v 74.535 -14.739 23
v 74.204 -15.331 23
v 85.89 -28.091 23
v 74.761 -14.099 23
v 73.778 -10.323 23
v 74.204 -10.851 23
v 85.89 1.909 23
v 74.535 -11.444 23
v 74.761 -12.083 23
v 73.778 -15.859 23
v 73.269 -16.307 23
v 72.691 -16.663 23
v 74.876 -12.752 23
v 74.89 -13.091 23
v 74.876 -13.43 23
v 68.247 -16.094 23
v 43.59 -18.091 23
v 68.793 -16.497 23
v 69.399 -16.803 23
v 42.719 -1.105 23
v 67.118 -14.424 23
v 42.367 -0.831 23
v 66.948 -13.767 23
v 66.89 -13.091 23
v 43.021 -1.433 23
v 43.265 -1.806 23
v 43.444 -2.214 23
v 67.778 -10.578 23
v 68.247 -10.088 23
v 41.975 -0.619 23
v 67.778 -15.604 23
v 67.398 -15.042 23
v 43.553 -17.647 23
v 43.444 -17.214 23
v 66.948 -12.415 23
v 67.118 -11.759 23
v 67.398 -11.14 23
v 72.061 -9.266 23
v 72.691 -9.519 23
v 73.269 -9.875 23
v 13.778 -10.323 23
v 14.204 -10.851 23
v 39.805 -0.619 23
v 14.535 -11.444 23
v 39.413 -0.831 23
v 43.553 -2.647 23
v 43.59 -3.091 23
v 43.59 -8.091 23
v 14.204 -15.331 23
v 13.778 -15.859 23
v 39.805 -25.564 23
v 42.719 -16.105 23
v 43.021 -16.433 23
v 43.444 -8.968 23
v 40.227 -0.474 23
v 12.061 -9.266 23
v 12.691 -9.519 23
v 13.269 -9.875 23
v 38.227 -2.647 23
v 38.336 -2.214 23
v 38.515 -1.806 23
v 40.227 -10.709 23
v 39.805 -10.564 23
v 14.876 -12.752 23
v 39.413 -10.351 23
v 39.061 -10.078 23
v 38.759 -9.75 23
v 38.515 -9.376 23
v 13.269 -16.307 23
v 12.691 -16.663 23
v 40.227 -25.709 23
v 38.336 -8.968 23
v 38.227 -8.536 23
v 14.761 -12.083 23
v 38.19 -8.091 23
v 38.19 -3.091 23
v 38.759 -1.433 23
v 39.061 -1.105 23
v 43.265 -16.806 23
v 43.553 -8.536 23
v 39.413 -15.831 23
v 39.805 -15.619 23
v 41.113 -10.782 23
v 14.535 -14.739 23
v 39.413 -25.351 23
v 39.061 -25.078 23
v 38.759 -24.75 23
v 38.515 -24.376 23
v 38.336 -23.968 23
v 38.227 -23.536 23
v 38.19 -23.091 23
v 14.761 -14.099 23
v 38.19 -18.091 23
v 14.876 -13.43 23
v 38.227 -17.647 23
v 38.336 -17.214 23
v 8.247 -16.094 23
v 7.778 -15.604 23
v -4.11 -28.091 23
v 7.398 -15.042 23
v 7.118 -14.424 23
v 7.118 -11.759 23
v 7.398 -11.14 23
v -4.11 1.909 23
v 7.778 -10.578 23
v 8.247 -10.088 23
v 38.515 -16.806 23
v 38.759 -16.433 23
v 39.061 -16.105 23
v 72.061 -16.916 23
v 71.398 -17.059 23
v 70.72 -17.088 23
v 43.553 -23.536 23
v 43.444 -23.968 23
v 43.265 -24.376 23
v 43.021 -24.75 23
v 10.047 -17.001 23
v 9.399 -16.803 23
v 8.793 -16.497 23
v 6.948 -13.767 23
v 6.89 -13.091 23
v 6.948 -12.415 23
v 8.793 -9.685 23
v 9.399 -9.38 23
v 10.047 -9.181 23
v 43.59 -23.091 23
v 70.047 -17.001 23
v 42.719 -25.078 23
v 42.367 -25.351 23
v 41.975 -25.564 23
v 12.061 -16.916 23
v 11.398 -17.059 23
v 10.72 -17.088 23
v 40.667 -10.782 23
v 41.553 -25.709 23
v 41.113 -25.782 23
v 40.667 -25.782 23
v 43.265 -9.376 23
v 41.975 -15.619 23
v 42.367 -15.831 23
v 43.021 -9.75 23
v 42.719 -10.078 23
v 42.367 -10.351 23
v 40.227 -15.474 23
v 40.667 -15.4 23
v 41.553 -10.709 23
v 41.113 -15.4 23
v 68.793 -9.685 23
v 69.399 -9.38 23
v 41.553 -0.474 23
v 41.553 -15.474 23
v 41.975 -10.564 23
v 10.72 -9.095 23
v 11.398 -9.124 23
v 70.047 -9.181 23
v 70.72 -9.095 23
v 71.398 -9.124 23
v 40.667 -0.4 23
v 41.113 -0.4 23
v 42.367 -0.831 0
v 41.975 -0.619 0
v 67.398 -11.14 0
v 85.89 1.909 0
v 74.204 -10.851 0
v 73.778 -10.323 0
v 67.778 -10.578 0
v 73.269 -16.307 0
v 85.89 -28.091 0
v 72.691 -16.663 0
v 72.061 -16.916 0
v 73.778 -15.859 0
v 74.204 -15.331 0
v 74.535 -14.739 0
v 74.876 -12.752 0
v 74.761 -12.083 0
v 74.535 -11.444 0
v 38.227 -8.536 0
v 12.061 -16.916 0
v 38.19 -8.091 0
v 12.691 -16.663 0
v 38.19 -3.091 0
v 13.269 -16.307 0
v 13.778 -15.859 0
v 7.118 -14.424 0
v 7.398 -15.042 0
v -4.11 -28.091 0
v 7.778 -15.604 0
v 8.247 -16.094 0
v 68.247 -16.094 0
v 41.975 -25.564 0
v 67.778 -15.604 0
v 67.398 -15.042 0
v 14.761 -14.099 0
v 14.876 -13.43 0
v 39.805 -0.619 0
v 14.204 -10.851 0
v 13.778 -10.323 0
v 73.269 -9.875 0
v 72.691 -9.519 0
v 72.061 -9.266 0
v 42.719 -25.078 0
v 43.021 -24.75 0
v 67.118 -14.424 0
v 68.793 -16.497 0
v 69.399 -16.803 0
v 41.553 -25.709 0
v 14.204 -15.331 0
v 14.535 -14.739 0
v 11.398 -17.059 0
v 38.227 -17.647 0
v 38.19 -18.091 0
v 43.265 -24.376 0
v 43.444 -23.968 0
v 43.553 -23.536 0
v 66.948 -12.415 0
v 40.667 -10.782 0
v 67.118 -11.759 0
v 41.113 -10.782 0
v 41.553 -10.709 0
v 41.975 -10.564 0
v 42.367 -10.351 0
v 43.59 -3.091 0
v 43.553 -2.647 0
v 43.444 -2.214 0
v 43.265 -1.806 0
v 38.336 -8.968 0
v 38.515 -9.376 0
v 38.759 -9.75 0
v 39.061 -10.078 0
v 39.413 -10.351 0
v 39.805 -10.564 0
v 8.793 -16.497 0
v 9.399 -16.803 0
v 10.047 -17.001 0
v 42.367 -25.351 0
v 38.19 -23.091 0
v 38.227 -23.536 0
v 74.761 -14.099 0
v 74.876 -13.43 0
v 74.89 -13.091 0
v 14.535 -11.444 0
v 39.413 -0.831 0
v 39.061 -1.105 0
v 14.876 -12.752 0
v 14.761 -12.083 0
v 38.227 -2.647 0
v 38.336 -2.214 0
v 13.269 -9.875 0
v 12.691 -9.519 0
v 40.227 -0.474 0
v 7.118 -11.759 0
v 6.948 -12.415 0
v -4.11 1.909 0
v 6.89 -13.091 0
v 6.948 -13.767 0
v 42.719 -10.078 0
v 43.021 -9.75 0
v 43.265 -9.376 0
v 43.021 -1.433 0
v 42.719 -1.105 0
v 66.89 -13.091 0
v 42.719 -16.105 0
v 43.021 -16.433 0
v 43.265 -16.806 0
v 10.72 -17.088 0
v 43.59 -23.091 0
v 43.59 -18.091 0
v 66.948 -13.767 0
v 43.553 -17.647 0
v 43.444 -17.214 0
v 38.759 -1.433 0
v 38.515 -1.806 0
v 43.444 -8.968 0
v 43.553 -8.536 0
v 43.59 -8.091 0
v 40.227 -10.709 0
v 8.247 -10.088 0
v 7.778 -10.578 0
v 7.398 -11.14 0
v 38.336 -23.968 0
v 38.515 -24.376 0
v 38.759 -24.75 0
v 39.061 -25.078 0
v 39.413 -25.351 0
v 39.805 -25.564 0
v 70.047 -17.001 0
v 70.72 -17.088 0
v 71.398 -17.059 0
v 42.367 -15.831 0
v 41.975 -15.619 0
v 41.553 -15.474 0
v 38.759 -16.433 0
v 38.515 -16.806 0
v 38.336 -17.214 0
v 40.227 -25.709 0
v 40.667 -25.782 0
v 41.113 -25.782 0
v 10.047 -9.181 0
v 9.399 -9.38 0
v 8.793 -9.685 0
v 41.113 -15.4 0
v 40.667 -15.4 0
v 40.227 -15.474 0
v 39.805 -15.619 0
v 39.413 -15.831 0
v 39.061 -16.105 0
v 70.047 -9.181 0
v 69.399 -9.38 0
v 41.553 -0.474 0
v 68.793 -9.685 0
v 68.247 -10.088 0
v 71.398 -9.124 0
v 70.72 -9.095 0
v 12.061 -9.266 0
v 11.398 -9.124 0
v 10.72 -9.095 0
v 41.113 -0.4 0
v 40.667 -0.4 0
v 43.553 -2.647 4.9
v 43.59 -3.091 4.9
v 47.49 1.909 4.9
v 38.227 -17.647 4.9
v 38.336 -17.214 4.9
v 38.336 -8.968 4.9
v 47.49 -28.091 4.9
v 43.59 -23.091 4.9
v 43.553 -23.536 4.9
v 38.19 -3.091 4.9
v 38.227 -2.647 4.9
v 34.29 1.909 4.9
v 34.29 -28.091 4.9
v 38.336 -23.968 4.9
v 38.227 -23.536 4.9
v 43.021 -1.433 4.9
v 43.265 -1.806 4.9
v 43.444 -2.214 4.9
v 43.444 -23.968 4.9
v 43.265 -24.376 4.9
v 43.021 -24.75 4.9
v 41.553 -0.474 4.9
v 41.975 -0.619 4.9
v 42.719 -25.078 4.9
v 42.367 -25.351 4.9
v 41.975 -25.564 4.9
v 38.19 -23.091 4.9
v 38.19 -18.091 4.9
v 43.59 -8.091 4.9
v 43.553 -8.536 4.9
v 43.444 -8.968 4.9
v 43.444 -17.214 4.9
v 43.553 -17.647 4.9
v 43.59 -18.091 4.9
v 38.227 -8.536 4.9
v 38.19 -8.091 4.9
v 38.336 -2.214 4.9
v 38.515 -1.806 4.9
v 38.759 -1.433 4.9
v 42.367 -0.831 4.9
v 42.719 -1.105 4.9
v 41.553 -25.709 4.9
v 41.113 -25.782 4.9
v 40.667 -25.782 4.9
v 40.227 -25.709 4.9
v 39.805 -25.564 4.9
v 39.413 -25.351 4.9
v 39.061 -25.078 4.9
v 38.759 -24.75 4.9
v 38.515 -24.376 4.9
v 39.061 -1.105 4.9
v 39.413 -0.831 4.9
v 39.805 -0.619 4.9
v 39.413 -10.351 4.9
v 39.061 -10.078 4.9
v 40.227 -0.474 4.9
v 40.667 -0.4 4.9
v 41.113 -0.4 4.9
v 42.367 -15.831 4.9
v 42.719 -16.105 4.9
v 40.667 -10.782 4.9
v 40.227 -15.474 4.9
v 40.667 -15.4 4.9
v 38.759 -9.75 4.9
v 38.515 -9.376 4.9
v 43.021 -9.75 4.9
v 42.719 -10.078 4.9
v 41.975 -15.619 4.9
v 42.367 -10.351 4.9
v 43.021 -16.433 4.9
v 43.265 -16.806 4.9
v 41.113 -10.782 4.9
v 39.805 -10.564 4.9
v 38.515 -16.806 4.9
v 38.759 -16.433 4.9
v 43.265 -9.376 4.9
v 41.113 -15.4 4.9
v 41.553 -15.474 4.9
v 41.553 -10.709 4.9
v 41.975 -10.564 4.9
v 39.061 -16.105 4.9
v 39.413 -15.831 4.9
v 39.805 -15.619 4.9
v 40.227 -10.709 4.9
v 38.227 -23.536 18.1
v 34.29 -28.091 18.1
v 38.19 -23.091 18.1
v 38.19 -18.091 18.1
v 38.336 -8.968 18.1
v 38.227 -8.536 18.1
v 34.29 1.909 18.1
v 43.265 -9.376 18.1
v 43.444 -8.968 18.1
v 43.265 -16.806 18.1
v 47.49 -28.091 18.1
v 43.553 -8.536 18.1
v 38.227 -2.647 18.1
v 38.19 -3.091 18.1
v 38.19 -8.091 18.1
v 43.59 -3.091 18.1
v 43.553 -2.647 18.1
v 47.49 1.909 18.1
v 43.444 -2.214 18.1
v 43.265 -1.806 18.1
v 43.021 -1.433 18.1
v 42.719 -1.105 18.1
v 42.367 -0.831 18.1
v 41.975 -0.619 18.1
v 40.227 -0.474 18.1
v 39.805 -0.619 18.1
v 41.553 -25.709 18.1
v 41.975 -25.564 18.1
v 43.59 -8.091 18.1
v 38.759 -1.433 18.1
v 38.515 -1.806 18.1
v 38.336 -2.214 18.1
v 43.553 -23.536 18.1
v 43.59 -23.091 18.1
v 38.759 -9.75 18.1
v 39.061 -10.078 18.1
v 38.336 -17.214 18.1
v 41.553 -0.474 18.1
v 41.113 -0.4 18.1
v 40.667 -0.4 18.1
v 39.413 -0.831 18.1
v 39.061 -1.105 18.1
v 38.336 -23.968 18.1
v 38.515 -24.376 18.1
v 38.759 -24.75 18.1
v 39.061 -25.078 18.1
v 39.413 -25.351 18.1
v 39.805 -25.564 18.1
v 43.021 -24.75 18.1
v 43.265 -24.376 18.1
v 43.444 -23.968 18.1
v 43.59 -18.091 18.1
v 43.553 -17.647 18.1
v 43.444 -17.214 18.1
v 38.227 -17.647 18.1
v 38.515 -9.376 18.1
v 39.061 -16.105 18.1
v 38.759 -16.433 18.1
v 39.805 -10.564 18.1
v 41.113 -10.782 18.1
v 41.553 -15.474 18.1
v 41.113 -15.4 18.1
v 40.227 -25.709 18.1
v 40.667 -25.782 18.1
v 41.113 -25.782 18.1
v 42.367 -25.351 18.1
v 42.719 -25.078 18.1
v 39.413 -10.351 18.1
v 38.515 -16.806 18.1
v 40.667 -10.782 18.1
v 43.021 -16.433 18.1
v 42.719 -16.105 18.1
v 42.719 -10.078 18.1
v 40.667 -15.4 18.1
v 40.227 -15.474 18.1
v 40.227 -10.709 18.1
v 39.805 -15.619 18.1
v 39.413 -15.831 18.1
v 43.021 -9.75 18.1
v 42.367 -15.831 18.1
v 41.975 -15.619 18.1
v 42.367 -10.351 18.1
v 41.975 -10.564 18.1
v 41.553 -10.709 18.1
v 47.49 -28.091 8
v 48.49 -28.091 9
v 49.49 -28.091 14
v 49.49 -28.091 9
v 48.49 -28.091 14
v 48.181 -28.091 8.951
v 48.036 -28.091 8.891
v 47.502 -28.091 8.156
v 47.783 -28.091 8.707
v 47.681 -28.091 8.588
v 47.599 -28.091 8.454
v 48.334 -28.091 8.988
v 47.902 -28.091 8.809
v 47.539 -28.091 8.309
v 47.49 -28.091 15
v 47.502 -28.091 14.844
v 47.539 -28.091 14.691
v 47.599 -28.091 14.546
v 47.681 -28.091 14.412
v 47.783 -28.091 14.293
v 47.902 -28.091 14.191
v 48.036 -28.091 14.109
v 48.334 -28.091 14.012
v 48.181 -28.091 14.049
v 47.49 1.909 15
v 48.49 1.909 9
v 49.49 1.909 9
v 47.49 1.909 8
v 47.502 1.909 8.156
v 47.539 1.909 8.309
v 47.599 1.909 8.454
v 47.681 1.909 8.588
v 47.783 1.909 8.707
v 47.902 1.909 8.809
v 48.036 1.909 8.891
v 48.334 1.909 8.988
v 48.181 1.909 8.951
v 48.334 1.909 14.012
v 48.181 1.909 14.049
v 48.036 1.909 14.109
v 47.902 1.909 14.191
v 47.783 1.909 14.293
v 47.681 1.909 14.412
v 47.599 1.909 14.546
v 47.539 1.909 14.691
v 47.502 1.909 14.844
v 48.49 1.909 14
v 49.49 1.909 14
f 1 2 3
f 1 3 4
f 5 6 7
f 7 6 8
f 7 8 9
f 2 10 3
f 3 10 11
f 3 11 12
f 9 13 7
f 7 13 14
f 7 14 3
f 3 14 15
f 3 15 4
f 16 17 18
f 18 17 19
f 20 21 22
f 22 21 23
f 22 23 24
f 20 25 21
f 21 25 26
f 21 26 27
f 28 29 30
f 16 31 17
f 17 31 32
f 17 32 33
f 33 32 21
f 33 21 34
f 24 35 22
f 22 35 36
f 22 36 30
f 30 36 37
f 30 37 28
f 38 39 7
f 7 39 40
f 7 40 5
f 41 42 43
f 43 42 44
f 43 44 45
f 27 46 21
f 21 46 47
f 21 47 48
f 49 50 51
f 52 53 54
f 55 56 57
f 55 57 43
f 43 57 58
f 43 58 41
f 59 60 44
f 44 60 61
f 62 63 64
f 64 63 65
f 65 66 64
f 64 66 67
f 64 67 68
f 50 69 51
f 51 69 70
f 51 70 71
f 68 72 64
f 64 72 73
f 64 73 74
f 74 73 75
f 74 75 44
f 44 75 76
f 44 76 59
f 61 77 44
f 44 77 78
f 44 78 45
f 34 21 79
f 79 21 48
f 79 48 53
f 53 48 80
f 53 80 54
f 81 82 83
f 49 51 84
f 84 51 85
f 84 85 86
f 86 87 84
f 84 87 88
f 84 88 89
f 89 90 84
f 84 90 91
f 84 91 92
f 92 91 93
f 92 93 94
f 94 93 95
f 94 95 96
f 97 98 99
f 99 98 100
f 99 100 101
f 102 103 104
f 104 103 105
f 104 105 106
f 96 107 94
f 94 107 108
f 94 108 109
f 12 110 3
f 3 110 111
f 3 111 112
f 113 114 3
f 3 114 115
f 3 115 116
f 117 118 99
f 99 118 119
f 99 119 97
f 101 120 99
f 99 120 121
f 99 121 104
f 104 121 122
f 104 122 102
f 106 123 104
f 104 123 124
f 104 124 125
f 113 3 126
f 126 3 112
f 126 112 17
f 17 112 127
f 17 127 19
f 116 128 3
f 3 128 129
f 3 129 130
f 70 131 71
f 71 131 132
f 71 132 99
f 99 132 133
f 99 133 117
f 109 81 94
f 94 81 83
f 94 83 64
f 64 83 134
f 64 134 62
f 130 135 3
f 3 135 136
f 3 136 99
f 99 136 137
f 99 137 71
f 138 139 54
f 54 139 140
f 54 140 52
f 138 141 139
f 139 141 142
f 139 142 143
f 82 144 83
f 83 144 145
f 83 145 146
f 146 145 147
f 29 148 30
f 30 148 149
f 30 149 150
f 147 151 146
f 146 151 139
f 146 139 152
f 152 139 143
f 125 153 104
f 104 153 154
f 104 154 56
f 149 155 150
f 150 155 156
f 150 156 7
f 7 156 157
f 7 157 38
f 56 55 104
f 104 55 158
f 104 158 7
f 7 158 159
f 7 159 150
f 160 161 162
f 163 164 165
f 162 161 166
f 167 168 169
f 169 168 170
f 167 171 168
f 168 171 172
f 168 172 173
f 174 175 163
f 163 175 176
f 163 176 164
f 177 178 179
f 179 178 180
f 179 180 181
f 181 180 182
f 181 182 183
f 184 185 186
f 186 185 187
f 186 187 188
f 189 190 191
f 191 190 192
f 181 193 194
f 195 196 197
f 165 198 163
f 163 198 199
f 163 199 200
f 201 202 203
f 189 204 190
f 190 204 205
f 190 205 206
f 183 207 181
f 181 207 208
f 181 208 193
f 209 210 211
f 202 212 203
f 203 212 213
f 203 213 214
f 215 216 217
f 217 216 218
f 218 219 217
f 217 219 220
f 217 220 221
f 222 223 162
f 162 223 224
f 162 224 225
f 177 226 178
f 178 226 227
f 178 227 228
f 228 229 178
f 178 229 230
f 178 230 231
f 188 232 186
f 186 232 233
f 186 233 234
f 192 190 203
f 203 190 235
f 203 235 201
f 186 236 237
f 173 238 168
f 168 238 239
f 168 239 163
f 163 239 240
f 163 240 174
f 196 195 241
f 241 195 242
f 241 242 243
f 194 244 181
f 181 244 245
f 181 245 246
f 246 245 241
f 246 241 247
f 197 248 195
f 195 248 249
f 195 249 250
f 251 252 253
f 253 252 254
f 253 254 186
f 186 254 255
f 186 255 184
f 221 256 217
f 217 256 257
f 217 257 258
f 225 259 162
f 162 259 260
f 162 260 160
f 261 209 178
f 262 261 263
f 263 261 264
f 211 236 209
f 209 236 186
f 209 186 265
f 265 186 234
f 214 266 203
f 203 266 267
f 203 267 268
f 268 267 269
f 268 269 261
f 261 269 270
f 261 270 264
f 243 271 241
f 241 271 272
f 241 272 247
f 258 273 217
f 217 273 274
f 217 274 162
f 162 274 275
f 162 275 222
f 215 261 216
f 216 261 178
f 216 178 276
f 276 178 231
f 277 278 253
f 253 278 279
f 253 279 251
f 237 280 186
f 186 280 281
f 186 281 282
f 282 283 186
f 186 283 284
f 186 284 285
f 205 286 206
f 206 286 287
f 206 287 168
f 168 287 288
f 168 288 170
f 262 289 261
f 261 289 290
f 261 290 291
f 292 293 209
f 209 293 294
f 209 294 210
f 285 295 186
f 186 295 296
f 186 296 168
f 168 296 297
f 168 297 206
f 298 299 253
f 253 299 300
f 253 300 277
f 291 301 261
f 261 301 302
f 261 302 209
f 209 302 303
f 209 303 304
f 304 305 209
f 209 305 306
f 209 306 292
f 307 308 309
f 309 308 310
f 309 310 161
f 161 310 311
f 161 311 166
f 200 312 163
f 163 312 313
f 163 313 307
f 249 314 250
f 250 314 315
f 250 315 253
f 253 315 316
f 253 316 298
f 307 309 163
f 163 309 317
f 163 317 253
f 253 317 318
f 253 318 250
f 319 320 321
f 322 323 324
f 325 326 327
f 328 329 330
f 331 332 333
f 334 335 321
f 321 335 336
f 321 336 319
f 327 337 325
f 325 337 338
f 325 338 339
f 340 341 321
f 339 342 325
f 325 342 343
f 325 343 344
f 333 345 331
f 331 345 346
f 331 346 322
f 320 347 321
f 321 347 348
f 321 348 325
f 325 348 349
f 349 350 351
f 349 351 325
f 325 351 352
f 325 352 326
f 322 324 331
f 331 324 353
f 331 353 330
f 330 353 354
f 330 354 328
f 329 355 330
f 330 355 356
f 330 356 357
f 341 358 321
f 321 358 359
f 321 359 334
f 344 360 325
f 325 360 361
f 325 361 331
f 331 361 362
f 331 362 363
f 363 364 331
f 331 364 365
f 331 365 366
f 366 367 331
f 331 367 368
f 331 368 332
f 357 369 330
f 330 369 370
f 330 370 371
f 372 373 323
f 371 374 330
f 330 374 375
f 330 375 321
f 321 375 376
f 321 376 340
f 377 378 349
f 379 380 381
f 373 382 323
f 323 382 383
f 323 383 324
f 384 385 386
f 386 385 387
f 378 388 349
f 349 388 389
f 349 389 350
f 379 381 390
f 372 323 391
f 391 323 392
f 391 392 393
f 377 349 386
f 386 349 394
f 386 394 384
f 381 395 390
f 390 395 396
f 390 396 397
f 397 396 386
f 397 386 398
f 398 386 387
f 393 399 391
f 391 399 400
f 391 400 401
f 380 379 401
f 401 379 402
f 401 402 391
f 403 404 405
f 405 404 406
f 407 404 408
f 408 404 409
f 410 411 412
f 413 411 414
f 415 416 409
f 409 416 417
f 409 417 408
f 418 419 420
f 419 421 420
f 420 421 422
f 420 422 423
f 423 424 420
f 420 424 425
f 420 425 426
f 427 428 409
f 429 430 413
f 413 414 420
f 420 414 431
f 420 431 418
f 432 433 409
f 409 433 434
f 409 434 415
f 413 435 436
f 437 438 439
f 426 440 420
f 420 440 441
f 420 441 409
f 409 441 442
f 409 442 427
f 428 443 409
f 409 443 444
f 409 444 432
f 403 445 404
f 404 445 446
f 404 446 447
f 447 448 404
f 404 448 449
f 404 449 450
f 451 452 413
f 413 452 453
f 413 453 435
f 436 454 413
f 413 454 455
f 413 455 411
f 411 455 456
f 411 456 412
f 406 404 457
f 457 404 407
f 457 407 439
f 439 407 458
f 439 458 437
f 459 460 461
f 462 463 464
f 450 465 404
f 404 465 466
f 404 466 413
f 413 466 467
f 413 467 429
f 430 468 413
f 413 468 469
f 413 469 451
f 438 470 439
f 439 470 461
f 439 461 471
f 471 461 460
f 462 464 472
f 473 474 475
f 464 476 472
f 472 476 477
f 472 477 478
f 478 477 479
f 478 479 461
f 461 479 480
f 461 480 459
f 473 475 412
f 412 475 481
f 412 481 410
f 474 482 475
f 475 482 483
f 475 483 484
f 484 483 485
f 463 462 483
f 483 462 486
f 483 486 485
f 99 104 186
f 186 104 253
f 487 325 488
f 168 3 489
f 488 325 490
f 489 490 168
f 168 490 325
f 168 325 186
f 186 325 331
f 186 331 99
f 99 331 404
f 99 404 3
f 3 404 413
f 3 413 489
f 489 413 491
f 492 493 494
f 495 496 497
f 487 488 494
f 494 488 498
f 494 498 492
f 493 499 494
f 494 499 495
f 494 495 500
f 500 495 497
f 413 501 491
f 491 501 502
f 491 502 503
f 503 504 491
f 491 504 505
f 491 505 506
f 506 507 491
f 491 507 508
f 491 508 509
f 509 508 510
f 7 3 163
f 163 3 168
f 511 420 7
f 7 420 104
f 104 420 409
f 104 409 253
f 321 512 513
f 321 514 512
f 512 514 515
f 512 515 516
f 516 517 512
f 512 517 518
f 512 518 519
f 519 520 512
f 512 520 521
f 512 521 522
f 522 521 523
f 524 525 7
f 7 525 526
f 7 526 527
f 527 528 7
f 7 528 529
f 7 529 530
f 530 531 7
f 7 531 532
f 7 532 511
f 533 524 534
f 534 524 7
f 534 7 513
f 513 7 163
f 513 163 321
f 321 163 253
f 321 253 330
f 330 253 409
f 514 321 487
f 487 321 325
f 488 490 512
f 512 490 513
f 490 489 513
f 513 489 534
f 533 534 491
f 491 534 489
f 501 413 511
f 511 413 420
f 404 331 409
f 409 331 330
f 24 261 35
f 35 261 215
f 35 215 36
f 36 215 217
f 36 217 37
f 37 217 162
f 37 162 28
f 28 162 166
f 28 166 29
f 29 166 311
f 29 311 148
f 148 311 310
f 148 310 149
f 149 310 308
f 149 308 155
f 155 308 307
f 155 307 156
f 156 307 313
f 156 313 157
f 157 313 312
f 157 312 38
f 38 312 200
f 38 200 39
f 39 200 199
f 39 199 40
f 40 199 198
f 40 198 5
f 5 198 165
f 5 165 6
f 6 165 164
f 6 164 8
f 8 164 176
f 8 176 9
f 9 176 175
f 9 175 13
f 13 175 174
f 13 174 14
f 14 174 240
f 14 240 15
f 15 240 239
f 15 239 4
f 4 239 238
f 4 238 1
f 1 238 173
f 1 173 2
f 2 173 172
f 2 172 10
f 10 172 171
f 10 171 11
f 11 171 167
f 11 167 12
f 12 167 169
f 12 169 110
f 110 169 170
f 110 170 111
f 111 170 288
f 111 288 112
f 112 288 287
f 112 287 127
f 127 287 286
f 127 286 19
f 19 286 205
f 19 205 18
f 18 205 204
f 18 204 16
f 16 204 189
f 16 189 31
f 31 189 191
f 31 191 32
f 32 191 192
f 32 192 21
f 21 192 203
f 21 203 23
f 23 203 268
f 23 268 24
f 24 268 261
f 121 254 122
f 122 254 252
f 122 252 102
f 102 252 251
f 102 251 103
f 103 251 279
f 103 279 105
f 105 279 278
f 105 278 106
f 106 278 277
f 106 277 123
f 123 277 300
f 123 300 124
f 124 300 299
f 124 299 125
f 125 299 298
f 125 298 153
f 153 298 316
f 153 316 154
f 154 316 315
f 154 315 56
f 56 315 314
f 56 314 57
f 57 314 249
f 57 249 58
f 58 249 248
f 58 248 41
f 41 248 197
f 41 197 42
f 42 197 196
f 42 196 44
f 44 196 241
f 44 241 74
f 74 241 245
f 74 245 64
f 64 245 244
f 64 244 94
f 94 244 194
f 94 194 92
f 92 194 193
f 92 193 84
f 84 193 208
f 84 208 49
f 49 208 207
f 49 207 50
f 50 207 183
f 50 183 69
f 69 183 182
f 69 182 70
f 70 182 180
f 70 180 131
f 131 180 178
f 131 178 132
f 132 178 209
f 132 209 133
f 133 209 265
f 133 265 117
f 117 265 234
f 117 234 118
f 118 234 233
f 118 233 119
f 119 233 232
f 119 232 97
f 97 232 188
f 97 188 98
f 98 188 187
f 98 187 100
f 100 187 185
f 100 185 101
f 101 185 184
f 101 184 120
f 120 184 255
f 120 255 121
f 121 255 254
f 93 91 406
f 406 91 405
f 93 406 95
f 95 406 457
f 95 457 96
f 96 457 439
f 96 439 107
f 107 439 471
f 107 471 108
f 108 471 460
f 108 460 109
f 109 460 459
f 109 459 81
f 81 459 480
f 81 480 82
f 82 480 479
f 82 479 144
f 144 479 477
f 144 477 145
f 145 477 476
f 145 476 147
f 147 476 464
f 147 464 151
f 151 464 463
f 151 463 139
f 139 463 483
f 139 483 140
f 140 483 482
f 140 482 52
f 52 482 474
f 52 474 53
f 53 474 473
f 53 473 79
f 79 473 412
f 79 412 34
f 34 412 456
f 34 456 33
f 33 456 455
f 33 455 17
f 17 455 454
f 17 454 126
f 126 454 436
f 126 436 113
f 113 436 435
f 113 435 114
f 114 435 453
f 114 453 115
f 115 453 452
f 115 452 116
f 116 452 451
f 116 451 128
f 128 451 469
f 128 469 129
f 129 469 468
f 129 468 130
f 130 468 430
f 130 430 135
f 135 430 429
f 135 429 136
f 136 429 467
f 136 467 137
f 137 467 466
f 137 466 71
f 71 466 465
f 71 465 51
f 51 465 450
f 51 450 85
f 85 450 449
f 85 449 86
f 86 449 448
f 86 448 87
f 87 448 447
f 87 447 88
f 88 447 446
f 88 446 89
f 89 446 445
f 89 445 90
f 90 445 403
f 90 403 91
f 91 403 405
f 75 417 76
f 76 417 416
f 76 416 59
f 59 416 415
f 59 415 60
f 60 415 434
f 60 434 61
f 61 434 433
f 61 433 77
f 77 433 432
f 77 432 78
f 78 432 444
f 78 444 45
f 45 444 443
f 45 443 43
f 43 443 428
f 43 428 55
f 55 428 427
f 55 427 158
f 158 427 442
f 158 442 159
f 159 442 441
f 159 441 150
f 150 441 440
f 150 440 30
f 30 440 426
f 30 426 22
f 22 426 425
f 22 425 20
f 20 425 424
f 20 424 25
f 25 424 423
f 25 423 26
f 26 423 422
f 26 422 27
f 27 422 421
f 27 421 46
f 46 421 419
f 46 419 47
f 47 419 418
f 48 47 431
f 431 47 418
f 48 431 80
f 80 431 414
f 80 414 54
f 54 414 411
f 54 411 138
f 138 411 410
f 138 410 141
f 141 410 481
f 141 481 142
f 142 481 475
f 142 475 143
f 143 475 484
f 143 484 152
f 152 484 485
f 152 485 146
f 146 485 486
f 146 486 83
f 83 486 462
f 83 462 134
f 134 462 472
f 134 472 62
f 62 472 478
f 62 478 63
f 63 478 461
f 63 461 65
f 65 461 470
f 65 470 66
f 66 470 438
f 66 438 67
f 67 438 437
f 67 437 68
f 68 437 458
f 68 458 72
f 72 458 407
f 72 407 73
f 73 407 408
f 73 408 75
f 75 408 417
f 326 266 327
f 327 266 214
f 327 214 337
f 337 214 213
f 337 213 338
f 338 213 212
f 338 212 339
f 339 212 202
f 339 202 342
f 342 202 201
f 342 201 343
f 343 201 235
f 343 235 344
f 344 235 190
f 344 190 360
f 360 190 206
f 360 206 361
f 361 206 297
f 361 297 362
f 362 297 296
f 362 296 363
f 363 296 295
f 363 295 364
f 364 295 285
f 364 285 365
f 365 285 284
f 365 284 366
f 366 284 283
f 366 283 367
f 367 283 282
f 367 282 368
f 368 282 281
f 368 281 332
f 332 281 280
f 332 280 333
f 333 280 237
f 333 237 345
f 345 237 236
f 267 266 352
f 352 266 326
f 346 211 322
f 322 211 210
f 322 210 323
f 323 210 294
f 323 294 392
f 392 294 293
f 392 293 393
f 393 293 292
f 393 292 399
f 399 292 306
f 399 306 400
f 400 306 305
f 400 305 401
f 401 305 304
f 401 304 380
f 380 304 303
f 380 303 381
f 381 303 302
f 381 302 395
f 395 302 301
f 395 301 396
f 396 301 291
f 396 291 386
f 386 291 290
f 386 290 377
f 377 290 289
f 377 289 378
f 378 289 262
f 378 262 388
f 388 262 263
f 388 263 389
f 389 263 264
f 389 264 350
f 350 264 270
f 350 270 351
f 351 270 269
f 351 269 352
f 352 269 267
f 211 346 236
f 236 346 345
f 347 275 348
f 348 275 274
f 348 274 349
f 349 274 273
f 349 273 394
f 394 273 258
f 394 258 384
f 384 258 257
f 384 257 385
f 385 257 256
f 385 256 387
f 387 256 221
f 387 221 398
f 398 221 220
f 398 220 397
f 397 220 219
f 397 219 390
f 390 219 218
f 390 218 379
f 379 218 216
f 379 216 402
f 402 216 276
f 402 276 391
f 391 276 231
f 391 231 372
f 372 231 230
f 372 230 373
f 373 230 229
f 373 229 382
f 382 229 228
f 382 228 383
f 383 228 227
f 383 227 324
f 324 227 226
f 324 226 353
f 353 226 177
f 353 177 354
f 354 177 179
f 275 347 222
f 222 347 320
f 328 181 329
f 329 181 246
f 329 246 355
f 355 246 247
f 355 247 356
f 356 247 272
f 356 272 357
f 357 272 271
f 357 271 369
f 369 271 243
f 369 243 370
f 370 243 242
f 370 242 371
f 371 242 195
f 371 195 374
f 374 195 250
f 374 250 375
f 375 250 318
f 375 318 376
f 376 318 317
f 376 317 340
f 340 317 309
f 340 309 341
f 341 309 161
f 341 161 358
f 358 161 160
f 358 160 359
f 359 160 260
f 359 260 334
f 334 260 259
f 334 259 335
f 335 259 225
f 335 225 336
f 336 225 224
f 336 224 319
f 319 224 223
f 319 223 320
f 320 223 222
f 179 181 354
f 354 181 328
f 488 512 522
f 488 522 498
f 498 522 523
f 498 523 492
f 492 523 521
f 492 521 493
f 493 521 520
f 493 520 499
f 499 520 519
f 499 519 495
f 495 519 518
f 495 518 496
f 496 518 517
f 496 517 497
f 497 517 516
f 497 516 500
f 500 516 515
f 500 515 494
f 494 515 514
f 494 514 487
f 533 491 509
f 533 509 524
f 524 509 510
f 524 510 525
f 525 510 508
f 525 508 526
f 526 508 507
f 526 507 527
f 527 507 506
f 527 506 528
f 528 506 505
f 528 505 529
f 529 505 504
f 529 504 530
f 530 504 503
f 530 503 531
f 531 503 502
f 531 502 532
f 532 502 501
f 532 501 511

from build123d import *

# Parameters (mm, degrees)
ESQUISSE1_W             = 90
ESQUISSE1_H             = 30
BOSS_EXTRU_1_DEPTH      = 23
ESQUISSE2_W             = 13.2
ESQUISSE2_H             = 13.2
ESQUISSE2_W_2           = 2
ESQUISSE2_H_2           = 5
ENL_V_MAT_EXTRU_1_DEPTH = 31
ESQUISSE3_R             = 4
ENL_V_MAT_EXTRU_2_DEPTH = 24
ENL_V_MAT_EXTRU_3_DEPTH = 24
CONG_1_R                = 1


with BuildPart() as part:
    # Esquisse1 → Boss.-Extru.1 (new body)
    with BuildSketch(Plane.XY):
        with Locations((40.889968792, -13.091136671)):
            Rectangle(ESQUISSE1_W, ESQUISSE1_H)
    extrude(amount=BOSS_EXTRU_1_DEPTH)

    # Esquisse2 → Enlèv. mat.-Extru.1 (cut, through all)
    with BuildSketch(Plane(origin=(0, 1.908863329, 0), x_dir=(1, 0, 0), z_dir=(0, 1, 0))):
        with Locations((40.889968792, -11.5)):
            Rectangle(ESQUISSE2_W, ESQUISSE2_H)
        with Locations((48.489968792, -11.5)):
            Rectangle(ESQUISSE2_W_2, ESQUISSE2_H_2)
    extrude(amount=-ENL_V_MAT_EXTRU_1_DEPTH, mode=Mode.SUBTRACT)

    # Esquisse3 → Enlèv. mat.-Extru.2 (cut, through all)
    with BuildSketch(Plane(origin=(0, 0, 0), x_dir=(-1, 0, 0), z_dir=(0, 0, -1))):
        with Locations((-10.889968792, -13.091136671)):
            Circle(ESQUISSE3_R)
        with Locations((-70.889968792, -13.091136671)):
            Circle(ESQUISSE3_R)
    extrude(amount=-ENL_V_MAT_EXTRU_2_DEPTH, mode=Mode.SUBTRACT)

    # Esquisse4 → Enlèv. mat.-Extru.3 (cut, through all)
    with BuildSketch(Plane(origin=(0, 0, 0), x_dir=(-1, 0, 0), z_dir=(0, 0, -1))):
        with BuildLine():
            ThreePointArc((-38.189968792, -8.091136671), (-40.889968792, -10.791136671), (-43.589968792, -8.091136671))
            Line((-43.589968792, -8.091136671), (-43.589968792, -3.091136671))
            ThreePointArc((-43.589968792, -3.091136671), (-40.889968792, -0.391136671), (-38.189968792, -3.091136671))
            Line((-38.189968792, -3.091136671), (-38.189968792, -8.091136671))
        make_face()
        with BuildLine():
            Line((-43.589968792, -23.091136671), (-43.589968792, -18.091136671))
            ThreePointArc((-43.589968792, -18.091136671), (-40.889968792, -15.391136671), (-38.189968792, -18.091136671))
            Line((-38.189968792, -18.091136671), (-38.189968792, -23.091136671))
            ThreePointArc((-38.189968792, -23.091136671), (-40.889968792, -25.791136671), (-43.589968792, -23.091136671))
        make_face()
    extrude(amount=-ENL_V_MAT_EXTRU_3_DEPTH, mode=Mode.SUBTRACT)

    # Congé1
    cong_1_edges = [part.edges().sort_by_distance(p)[0] for p in [
        (47.489968792, -13.091136671, 9),
        (47.489968792, -13.091136671, 14),
    ]]
    fillet(cong_1_edges, radius=CONG_1_R)


solid = part.part
